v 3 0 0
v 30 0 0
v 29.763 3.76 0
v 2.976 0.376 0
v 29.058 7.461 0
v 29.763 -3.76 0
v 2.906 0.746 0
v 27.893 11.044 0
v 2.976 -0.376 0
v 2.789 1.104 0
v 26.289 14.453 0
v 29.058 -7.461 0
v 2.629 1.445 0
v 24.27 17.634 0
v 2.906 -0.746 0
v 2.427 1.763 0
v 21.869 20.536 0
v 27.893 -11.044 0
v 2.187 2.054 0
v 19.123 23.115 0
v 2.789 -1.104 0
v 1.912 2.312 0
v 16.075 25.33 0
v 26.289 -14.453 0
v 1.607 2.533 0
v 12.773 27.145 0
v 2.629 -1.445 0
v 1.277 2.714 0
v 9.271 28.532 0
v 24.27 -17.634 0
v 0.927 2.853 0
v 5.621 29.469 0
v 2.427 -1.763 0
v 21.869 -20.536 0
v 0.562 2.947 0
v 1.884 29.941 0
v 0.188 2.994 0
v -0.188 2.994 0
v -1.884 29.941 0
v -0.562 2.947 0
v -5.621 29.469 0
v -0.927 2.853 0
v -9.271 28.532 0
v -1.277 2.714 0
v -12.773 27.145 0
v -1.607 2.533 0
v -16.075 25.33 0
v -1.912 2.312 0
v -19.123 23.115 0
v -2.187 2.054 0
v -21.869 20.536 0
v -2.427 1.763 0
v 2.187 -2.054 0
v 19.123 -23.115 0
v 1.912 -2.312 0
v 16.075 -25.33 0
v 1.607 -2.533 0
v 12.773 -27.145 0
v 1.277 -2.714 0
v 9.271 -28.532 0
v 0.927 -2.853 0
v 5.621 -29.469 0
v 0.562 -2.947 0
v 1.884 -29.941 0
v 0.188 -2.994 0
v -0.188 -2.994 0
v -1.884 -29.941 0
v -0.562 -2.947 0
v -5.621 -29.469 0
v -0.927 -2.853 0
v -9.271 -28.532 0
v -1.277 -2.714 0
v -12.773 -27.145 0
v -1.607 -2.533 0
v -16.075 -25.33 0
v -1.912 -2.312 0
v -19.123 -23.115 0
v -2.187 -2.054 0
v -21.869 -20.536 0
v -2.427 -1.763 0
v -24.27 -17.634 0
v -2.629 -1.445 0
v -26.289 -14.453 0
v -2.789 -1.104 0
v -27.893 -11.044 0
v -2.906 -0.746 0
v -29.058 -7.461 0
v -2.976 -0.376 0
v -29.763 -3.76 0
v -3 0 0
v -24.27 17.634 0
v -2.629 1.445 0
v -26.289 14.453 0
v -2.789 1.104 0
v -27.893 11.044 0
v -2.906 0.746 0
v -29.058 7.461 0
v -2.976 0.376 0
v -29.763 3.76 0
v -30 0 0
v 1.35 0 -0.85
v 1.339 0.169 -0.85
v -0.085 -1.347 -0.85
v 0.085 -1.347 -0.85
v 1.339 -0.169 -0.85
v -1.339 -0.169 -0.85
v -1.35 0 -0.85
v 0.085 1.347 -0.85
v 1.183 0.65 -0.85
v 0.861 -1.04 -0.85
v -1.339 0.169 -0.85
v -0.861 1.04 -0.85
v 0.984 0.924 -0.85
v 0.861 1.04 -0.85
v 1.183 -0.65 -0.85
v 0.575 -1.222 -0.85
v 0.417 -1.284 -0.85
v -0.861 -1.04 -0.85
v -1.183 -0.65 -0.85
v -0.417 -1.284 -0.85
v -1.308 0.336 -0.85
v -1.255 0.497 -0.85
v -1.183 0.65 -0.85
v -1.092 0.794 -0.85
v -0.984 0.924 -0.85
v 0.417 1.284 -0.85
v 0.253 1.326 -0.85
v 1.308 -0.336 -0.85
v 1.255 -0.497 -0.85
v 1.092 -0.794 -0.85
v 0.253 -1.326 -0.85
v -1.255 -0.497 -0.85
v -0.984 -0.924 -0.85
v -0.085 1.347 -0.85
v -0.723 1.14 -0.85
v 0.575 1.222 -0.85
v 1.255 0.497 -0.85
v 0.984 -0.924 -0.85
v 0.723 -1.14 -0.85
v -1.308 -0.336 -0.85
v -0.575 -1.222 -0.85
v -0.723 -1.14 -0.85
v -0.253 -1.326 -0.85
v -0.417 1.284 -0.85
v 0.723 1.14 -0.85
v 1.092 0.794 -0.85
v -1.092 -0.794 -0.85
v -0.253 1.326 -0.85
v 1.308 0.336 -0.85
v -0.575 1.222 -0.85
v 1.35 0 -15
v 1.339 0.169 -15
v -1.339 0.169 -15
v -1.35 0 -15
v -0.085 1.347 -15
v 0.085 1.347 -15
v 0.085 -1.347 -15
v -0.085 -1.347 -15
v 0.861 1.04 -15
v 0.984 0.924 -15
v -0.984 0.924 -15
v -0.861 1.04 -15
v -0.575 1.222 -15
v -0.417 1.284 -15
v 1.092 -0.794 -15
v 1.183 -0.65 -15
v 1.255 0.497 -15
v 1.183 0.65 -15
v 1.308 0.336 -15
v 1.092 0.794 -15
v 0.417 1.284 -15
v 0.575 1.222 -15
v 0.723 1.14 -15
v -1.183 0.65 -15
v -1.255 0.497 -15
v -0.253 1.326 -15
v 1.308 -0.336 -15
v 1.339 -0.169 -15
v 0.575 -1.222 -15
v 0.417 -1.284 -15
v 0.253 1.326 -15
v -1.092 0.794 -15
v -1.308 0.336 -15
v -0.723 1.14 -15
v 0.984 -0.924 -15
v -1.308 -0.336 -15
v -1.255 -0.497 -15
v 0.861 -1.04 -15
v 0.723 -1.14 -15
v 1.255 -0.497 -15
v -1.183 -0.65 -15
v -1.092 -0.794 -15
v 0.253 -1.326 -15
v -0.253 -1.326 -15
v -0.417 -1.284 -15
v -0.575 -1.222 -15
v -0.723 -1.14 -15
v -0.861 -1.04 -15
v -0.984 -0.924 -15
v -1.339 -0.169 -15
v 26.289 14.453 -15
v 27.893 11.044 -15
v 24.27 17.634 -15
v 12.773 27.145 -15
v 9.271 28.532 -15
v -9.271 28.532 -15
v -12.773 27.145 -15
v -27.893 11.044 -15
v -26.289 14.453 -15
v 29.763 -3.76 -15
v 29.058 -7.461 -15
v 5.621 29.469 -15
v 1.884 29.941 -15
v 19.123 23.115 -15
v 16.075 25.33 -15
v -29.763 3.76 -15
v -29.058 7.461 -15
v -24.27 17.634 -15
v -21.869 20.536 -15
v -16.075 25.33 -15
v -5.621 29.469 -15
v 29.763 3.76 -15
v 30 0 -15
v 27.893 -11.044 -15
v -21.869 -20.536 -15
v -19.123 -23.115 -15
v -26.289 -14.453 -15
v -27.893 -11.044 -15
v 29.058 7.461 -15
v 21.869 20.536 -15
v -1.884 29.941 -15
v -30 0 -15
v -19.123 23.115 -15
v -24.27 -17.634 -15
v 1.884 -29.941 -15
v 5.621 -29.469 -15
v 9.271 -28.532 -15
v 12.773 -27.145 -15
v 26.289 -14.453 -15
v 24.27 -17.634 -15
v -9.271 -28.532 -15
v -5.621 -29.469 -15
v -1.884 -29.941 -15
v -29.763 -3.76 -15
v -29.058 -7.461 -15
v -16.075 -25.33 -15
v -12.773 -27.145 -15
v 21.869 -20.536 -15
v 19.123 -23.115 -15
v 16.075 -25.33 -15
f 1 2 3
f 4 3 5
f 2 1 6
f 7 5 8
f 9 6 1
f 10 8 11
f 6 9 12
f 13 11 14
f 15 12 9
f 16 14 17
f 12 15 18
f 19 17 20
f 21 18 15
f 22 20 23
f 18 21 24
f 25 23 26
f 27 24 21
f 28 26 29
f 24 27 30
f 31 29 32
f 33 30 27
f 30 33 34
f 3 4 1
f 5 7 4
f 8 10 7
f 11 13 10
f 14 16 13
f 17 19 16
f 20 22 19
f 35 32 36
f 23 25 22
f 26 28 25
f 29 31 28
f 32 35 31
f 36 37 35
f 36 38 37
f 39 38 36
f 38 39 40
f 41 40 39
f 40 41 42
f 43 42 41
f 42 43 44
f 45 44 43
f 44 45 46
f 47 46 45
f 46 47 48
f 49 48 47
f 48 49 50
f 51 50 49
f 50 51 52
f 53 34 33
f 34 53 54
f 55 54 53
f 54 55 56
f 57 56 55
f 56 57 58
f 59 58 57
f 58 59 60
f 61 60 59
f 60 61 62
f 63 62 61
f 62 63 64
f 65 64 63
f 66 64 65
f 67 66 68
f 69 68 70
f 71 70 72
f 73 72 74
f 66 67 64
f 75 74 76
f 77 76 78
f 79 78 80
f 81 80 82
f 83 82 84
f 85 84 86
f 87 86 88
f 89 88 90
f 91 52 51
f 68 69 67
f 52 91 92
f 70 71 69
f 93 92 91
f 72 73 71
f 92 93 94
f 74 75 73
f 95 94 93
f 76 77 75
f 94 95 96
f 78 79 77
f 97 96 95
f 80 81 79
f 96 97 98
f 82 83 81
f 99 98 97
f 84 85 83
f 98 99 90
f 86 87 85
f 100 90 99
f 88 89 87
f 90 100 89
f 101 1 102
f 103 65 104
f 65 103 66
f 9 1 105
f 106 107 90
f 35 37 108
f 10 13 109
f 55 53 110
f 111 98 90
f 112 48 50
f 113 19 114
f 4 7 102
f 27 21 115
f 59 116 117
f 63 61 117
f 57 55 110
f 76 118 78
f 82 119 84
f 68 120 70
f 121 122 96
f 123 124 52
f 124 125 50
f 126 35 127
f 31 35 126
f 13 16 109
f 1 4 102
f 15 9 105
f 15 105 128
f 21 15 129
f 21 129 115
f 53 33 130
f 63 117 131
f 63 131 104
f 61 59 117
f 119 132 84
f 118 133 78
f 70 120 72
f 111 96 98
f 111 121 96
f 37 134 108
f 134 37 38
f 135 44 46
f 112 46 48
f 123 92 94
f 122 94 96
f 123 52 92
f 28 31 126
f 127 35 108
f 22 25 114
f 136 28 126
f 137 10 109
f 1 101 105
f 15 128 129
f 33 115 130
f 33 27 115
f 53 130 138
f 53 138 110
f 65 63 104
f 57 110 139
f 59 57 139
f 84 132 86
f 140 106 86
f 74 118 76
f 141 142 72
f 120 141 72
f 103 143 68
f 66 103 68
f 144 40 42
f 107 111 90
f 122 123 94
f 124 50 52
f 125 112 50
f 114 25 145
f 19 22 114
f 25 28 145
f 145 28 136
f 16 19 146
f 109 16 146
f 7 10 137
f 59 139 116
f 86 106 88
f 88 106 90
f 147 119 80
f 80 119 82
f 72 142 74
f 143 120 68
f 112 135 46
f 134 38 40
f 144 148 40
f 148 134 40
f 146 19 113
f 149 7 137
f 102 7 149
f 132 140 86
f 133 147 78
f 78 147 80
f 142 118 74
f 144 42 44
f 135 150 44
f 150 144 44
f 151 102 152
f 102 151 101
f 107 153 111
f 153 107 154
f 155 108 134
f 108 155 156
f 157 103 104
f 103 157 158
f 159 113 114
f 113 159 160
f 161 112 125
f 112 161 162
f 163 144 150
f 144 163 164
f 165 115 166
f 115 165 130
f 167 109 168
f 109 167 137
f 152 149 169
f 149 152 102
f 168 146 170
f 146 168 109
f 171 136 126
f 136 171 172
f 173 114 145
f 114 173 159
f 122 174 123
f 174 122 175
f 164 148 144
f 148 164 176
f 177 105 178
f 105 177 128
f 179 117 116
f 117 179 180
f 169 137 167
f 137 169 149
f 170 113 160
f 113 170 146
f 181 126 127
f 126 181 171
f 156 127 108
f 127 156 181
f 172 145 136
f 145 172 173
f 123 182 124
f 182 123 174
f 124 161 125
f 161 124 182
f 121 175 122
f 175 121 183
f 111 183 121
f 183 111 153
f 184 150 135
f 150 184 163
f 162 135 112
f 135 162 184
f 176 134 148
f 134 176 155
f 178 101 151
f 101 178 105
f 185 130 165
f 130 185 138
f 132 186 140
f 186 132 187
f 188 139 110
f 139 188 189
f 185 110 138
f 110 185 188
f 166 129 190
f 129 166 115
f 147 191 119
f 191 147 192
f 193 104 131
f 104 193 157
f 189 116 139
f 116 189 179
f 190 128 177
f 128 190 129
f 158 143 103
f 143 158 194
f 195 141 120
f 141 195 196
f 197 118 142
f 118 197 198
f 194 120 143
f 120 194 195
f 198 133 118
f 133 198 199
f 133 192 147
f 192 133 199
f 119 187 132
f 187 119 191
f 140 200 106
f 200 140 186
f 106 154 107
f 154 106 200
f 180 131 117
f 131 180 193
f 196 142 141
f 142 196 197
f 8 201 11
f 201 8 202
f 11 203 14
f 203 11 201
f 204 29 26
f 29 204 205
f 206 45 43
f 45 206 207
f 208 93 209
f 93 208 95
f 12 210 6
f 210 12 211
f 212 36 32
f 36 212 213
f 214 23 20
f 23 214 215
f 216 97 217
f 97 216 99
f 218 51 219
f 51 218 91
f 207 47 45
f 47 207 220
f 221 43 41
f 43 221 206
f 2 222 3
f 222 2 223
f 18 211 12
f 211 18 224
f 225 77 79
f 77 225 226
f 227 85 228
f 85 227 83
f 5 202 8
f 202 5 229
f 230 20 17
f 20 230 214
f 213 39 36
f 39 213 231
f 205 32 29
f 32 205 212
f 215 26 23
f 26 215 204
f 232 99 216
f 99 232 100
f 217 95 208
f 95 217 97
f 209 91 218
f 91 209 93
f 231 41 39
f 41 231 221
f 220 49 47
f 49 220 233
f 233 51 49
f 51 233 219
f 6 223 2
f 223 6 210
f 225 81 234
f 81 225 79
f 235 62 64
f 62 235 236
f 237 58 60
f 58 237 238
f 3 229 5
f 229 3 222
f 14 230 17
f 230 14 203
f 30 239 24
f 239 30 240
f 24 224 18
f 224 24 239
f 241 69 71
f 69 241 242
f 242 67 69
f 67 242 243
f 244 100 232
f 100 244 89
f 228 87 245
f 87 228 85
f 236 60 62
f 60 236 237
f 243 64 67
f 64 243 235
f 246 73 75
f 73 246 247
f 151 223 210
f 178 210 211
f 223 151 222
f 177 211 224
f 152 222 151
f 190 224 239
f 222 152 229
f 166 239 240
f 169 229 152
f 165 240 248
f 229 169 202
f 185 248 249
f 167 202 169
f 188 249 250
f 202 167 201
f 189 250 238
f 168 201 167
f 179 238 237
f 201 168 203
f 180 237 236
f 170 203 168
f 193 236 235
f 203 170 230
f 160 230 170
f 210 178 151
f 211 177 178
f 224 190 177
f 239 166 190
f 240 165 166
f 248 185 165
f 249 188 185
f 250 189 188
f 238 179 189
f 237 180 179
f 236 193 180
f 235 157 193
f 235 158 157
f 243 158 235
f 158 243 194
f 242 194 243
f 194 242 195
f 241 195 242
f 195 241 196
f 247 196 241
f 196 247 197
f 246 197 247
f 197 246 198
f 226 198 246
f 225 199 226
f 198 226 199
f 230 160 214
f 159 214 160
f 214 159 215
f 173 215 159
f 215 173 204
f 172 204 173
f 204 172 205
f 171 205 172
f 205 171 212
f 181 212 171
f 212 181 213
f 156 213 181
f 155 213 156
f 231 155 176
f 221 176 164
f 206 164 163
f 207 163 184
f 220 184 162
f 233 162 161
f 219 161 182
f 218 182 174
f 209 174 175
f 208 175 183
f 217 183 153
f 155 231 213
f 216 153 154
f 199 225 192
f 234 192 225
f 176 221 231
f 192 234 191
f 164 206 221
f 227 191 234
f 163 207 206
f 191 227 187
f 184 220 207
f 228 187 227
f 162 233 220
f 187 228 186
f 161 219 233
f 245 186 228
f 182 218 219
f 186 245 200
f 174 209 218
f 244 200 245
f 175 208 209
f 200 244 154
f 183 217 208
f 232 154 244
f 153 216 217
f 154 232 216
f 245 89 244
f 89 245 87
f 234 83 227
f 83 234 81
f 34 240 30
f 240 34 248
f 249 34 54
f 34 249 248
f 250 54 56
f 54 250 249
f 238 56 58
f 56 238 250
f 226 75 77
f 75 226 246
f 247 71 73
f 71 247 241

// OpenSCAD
$fn = 50;

difference() {
	union() {
		translate(v = [0, 0, -15.0]) {
			cylinder(h = 15, r = 30.0);
		}
	}
	union() {
		translate(v = [0, 0, 0]) {
			rotate(a = [0, 0, 0]) {
				difference() {
					union() {
						translate(v = [0, 0, -18.0]) {
							cylinder(h = 18, r = 1.0);
						}
						translate(v = [0, 0, -0.85]) {
							cylinder(h = 0.85, r1 = 1.35, r2 = 3.0);
						}
						translate(v = [0, 0, -18.0]) {
							cylinder(h = 18, r = 1.35);
						}
						translate(v = [0, 0, -18.0]) {
							cylinder(h = 18, r = 1.0);
						}
					}
					union();
				}
			}
		}
	}
}
